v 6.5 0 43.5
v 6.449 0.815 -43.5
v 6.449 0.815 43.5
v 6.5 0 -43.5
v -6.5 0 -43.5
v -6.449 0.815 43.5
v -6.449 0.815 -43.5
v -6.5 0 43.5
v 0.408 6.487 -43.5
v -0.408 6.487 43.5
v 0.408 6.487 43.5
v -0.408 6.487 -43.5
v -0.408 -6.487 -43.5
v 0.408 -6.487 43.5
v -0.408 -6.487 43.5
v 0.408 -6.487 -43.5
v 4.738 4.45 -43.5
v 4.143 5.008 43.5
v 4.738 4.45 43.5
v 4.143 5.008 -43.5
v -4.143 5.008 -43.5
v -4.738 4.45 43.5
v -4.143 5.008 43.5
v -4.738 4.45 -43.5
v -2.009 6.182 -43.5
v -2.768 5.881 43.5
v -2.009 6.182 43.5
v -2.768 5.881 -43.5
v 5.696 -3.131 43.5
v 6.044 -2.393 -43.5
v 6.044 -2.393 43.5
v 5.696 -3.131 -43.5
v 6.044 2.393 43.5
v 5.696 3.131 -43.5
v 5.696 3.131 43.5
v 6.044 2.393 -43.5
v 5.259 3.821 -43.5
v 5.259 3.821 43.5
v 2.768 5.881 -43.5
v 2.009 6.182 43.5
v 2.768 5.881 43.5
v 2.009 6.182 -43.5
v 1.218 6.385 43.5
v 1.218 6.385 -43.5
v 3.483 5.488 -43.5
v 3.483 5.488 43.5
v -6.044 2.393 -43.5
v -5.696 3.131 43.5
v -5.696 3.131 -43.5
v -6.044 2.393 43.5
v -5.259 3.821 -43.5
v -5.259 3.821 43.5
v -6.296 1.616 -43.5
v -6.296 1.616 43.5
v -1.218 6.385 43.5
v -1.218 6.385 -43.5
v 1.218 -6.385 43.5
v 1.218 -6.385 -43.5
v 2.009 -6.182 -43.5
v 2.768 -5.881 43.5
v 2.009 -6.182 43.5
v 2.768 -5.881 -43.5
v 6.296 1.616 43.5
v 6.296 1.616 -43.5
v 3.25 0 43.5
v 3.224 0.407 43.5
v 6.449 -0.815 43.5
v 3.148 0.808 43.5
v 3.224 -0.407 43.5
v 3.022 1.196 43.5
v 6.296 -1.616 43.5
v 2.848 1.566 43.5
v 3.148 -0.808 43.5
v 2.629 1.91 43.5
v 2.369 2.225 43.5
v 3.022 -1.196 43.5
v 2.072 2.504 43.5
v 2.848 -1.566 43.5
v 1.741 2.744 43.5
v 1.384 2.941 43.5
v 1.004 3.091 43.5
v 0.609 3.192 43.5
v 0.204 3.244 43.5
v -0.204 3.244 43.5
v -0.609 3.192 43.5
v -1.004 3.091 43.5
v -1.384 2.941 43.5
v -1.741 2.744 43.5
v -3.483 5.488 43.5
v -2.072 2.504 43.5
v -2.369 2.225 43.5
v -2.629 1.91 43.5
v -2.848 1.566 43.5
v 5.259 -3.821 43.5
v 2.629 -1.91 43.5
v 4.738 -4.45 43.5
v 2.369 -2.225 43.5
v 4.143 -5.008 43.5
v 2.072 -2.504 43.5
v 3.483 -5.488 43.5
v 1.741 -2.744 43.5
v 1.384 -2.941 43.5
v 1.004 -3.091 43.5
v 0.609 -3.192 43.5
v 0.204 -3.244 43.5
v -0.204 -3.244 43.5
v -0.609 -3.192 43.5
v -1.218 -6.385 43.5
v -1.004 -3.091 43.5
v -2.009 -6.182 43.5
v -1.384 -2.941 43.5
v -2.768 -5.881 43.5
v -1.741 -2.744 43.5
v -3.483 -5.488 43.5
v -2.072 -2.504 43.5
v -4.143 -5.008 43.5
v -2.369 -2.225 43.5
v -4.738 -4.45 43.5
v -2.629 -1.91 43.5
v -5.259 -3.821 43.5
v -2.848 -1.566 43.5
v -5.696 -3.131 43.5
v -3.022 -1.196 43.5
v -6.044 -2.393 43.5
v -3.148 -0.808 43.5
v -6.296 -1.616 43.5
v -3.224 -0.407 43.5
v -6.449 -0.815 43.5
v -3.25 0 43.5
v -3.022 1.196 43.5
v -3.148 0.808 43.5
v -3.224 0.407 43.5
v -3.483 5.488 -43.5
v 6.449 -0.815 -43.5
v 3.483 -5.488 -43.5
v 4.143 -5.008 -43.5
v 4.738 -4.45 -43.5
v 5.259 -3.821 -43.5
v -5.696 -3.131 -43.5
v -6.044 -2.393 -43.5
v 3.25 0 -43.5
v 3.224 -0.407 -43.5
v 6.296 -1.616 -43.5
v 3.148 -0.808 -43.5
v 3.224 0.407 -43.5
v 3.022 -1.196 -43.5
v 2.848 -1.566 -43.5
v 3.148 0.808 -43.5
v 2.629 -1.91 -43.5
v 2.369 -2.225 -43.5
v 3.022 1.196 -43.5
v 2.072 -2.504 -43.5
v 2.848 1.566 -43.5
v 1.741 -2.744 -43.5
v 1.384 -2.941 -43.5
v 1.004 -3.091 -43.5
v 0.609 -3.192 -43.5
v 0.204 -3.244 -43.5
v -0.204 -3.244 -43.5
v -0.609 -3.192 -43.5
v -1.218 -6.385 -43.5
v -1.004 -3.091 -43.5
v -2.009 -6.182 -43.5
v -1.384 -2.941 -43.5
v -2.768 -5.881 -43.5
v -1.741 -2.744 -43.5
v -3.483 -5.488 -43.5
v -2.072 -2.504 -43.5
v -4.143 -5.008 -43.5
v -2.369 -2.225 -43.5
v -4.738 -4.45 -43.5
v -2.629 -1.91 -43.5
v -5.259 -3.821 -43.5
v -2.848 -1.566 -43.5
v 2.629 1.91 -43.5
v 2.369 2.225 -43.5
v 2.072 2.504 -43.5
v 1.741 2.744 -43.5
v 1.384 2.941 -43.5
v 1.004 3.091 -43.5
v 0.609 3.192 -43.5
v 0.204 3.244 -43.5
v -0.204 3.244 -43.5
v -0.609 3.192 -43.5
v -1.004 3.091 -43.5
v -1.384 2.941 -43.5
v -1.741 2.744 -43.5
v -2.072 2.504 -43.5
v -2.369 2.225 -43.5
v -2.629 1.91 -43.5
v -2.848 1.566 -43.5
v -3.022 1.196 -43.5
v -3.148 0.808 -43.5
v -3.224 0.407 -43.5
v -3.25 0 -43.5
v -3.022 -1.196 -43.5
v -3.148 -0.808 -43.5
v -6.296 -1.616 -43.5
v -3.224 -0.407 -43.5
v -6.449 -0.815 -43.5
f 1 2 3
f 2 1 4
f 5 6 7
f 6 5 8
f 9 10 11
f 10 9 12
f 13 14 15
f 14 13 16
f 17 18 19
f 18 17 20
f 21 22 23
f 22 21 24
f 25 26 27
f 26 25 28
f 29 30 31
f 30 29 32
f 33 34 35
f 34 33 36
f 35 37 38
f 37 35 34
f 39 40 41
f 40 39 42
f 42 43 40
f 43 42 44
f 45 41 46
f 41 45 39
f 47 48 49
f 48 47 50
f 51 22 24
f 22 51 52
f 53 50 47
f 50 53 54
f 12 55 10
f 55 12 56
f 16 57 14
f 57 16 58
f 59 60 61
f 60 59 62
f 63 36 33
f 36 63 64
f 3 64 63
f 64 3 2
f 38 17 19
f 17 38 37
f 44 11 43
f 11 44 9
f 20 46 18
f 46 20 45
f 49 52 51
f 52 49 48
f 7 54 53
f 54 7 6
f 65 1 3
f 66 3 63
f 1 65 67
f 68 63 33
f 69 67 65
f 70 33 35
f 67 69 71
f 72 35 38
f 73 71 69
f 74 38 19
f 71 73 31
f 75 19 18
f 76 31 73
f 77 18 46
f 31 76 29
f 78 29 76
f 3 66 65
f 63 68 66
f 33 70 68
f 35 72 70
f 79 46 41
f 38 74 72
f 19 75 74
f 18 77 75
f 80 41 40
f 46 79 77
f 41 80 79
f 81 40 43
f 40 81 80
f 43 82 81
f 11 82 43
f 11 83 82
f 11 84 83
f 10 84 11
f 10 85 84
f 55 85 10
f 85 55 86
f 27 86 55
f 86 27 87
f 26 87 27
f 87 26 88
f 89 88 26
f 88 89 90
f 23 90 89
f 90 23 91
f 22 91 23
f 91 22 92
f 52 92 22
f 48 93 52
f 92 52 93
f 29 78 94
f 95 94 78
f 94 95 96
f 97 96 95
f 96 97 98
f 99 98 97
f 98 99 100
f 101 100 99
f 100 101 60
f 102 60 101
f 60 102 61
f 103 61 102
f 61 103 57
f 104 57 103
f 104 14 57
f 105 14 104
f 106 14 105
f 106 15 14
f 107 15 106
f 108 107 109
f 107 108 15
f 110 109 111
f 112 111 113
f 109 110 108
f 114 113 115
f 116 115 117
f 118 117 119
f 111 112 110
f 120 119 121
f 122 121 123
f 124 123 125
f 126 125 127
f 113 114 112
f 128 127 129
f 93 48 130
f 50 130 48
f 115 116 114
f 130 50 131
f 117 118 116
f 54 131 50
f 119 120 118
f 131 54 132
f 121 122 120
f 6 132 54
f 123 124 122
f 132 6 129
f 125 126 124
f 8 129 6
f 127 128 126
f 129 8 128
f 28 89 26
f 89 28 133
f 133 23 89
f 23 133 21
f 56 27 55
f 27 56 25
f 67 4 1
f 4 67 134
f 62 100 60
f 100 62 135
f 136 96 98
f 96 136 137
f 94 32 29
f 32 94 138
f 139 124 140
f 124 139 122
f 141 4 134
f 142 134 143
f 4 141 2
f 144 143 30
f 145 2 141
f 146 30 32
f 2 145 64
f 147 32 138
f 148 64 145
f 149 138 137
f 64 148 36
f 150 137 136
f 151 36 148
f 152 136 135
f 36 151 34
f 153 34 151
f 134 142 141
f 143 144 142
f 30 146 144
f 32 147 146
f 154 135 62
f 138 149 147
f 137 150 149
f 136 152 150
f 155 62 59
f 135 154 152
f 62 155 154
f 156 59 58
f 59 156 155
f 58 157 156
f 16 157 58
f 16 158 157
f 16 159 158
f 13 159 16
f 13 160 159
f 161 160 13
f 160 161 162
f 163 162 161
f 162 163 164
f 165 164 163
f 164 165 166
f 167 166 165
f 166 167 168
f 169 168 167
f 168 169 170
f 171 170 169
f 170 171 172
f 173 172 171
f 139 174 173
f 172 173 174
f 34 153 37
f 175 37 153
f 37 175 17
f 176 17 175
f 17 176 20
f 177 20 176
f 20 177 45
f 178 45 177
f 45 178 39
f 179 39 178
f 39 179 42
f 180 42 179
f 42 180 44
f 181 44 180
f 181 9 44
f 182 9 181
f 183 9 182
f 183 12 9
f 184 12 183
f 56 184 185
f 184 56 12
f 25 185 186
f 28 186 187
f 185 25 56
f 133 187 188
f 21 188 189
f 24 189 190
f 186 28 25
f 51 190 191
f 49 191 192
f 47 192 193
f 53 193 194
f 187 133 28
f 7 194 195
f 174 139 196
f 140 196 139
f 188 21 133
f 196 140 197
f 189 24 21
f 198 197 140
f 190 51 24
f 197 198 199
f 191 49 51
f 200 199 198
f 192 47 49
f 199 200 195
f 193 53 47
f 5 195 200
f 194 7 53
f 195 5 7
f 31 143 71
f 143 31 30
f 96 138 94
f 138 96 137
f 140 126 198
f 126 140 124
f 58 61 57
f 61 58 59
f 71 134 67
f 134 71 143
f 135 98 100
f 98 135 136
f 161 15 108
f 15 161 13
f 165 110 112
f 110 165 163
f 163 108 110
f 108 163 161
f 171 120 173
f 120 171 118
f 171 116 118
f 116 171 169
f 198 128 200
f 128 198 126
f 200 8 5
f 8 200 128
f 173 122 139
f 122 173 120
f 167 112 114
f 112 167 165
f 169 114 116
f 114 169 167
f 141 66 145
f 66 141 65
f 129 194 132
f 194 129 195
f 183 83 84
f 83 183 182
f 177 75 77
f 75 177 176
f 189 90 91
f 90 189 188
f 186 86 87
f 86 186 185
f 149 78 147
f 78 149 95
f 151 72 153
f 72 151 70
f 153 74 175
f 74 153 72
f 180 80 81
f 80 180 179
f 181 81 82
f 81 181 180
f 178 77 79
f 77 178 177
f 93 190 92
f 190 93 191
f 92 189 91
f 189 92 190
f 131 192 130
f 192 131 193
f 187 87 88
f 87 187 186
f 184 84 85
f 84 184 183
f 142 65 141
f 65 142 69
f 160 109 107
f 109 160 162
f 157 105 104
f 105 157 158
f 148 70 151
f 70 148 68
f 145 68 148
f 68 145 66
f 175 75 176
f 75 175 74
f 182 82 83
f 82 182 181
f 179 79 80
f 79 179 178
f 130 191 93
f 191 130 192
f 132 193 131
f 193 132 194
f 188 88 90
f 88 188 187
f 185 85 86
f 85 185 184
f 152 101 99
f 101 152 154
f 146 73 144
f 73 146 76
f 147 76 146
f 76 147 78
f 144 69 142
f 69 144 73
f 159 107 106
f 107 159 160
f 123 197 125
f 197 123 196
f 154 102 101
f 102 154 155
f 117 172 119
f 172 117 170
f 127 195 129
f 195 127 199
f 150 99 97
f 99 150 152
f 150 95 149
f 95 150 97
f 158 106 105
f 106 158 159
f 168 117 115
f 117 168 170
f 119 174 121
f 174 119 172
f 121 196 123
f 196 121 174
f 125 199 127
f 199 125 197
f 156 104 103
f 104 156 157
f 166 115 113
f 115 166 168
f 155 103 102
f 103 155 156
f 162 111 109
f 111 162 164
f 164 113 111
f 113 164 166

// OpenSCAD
$fn = 50;


difference() {
	union() {
		translate(v = [0, 0, -43.5000000000]) {
			cylinder(h = 87, r = 6.5000000000);
		}
	}
	union() {
		translate(v = [0, 0, -100.0000000000]) {
			cylinder(h = 200, r = 3.2500000000);
		}
	}
}
